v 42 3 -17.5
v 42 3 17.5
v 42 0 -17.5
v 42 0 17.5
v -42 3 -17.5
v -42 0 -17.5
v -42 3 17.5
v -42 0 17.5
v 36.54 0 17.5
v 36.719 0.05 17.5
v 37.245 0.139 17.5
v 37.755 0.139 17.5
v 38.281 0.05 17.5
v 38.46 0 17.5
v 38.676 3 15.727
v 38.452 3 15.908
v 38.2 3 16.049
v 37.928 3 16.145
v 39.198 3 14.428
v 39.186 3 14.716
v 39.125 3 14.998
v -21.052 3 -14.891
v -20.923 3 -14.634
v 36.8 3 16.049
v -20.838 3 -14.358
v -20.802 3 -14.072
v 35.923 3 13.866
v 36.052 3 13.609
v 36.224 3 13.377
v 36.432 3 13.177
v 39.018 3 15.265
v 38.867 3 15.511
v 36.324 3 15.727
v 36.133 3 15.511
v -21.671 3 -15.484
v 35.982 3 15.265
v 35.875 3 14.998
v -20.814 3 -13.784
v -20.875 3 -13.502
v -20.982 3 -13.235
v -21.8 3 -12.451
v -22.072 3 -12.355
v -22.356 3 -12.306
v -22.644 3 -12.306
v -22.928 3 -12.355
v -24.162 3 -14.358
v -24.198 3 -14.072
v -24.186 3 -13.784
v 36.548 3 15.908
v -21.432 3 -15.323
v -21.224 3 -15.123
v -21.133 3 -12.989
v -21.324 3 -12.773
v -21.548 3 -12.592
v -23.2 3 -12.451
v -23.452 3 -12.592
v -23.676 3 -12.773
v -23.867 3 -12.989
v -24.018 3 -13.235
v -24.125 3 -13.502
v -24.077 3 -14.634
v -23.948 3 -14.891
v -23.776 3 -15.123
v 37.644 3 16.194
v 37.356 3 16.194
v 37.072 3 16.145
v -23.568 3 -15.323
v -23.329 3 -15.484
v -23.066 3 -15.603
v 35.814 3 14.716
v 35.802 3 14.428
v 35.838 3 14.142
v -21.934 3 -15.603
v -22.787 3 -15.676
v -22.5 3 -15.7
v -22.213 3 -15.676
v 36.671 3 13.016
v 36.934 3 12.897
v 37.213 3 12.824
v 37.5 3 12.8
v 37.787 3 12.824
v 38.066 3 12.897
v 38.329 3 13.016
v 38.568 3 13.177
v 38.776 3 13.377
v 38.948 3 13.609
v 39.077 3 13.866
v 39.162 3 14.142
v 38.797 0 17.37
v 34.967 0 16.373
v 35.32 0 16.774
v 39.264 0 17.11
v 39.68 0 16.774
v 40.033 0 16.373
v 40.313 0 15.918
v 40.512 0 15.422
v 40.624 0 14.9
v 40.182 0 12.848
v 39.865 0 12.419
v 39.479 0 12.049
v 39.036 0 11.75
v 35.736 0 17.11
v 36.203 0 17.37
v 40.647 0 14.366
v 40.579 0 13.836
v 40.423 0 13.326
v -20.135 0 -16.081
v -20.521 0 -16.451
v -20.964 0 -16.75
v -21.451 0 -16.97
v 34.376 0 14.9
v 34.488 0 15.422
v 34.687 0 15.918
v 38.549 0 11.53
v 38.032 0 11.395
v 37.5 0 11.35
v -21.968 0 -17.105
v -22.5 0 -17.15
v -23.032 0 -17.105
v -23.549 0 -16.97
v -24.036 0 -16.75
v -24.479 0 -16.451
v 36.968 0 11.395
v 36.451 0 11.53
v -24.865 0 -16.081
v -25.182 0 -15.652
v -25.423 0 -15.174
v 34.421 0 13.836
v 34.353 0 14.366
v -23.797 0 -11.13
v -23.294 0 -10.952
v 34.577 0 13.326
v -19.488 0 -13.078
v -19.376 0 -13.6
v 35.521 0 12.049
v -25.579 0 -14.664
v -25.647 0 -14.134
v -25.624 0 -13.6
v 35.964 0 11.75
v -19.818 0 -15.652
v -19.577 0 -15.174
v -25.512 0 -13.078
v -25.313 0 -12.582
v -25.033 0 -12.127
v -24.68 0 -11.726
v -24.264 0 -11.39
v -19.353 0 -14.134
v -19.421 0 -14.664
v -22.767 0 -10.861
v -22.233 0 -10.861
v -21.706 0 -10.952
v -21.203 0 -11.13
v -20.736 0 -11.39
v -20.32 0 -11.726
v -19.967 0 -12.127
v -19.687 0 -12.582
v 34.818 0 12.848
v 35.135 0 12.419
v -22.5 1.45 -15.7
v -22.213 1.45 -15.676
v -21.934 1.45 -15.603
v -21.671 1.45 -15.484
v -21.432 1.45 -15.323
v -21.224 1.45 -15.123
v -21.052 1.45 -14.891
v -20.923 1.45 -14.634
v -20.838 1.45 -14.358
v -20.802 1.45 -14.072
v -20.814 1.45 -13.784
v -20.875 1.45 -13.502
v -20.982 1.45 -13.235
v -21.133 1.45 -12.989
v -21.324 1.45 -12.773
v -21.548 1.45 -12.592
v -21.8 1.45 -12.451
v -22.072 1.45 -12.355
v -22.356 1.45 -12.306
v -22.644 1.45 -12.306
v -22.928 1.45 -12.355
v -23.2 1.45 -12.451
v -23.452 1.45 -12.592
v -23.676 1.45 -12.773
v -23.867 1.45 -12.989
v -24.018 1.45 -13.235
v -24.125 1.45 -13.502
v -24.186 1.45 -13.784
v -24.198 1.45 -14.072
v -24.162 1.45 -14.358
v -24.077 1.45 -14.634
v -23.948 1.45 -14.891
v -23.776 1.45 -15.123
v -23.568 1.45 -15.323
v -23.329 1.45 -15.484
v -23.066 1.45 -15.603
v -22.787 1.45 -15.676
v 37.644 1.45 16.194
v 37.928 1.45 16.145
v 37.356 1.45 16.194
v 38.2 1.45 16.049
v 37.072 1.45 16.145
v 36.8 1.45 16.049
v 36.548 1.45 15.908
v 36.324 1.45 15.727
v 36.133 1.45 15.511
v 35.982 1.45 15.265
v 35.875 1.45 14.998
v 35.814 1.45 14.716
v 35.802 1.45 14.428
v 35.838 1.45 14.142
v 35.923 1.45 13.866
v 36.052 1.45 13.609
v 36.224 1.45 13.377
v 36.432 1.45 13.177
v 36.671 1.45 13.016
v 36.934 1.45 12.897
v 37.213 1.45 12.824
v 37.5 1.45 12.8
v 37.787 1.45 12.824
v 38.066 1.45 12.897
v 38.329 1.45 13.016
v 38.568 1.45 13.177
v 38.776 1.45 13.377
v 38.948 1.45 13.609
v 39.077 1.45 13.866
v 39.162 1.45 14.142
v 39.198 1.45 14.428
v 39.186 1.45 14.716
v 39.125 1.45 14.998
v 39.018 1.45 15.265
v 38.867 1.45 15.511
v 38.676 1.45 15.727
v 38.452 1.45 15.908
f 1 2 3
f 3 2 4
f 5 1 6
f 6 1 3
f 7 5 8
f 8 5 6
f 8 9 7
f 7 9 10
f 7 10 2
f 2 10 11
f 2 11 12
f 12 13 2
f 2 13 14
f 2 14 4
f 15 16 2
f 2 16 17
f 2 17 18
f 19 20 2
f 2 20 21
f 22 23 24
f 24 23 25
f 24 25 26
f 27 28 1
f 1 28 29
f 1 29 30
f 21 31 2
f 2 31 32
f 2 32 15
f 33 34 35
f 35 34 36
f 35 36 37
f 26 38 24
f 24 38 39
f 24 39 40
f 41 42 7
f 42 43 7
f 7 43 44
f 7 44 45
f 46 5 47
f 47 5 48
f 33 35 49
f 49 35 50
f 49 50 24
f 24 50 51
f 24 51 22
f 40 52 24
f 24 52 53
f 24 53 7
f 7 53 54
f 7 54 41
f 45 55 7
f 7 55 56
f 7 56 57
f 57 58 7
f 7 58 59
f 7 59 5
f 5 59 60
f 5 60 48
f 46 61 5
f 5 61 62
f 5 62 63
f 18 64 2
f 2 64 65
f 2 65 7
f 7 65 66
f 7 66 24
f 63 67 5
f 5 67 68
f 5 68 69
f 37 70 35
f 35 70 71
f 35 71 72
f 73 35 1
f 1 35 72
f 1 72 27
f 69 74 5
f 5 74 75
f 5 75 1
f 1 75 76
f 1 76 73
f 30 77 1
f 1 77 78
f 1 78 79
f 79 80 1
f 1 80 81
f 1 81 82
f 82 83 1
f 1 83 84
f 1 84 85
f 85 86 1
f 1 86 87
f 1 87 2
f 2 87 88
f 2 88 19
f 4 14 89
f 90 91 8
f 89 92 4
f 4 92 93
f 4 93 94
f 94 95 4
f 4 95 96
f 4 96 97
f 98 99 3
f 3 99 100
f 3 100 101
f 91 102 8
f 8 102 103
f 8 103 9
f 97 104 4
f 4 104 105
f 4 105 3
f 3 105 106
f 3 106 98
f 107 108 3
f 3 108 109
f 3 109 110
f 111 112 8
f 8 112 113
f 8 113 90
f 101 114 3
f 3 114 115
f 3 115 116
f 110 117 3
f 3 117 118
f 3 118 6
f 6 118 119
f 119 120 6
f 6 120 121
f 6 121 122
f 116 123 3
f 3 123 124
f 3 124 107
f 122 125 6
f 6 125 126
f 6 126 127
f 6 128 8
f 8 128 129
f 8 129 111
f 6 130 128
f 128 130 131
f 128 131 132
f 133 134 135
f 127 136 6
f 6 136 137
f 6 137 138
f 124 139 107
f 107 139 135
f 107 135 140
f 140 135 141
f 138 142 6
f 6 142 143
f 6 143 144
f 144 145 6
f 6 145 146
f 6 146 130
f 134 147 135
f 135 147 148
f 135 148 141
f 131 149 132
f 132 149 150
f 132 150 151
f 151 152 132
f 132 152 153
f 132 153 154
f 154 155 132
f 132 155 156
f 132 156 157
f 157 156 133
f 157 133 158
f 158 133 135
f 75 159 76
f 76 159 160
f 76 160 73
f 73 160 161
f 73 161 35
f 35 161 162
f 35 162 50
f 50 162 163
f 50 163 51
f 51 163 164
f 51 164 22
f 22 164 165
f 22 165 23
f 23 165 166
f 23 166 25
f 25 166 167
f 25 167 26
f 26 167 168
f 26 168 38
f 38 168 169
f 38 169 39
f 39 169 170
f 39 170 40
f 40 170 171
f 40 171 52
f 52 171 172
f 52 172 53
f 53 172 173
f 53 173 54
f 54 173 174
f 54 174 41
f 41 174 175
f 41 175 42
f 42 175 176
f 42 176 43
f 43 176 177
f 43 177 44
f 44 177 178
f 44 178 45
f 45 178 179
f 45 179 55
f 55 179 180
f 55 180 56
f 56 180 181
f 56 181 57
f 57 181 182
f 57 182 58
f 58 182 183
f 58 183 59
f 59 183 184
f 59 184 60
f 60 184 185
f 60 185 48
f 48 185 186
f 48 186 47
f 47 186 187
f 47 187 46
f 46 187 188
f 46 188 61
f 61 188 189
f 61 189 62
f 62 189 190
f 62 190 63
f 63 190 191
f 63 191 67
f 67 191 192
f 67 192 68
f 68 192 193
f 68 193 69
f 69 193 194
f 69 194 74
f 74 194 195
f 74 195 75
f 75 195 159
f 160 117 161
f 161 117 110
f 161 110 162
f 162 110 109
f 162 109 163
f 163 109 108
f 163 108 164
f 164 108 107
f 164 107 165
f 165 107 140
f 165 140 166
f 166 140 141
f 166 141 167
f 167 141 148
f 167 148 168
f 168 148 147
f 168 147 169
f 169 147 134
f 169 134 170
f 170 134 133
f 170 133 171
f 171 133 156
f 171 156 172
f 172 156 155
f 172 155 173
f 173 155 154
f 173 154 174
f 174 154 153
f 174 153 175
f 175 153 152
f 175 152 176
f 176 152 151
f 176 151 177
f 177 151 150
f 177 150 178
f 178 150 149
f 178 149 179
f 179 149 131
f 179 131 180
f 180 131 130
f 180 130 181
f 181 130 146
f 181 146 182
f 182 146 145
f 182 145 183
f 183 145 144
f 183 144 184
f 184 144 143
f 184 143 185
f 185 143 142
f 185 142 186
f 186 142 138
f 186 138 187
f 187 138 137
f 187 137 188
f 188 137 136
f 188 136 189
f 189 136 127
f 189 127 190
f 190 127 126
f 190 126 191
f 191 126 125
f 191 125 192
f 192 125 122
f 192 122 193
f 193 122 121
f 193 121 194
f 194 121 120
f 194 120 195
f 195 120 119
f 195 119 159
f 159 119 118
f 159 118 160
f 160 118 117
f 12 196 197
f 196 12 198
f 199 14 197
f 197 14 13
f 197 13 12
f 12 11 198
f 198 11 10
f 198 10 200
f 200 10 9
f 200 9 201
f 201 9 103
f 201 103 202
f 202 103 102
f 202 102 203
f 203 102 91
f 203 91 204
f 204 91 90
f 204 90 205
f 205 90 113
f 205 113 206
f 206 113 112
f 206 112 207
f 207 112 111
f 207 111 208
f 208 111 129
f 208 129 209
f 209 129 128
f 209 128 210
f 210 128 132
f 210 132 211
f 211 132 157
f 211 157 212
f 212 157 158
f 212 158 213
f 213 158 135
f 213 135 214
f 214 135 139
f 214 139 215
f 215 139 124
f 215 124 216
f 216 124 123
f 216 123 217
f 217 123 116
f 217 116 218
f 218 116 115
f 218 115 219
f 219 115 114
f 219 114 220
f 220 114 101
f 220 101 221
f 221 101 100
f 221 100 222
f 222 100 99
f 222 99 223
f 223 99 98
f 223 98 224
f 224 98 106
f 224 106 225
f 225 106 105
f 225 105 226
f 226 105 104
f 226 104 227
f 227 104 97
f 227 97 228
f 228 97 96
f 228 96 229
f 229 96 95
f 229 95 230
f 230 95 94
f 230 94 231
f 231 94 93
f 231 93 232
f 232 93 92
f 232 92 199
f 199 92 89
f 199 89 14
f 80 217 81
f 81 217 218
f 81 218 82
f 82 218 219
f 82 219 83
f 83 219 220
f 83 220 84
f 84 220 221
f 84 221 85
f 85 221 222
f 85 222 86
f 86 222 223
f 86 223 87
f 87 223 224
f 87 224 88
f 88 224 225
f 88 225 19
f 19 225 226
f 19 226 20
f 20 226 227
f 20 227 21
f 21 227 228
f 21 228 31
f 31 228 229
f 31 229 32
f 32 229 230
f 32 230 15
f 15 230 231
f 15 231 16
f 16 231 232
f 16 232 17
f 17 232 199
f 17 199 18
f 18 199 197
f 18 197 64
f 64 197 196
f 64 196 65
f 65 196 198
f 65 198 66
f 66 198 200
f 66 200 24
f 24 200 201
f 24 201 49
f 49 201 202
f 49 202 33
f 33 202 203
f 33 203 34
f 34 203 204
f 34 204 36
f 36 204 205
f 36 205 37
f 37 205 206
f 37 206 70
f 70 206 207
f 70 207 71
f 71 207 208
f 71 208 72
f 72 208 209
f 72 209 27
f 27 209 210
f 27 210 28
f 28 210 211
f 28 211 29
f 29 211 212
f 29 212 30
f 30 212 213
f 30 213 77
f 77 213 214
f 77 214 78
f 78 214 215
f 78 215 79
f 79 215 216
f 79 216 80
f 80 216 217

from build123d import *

# Parameters (mm, degrees)
SKETCH1_W                                      = 84
SKETCH1_H                                      = 35
BOSS_EXTRUDE1_DEPTH                            = 3
CSK_FOR_M3_FLAT_HEAD_MACHINE_SCREW1_AT_2_COUNT = 2
CSK_FOR_M3_FLAT_HEAD_MACHINE_SCREW1_AT_2_PITCH = 66.424769476


with BuildPart() as part:
    # Sketch1 → Boss-Extrude1 (new body)
    with BuildSketch(Plane(origin=(0, 0, 0), x_dir=(1, 0, 0), z_dir=(0, 1, 0))):
        Rectangle(SKETCH1_W, SKETCH1_H)
    extrude(amount=BOSS_EXTRUDE1_DEPTH)

    # Sketch5 → CSK for M3 Flat Head Machine Screw1 (revolve, cut)
    with BuildSketch(Plane(origin=(37.5, 0, 14.5), x_dir=(0, 0, -1), z_dir=(1, 0, 0))):
        Polygon((0, 0), (0, 3), (1.7, 3), (1.7, 1.45), (3.15, 0), align=None)
    csk_for_m3_flat_head_machine_screw1 = revolve(axis=Axis((37.5, -6.35, 14.5), (0, 1, 0)), mode=Mode.SUBTRACT)

    # CSK for M3 Flat Head Machine Screw1 at 2: CSK for M3 Flat Head Machine Screw1 ×2
    with Locations(*[Vector(-0.9032775043542898, 0, -0.4290568145682877) * (i * CSK_FOR_M3_FLAT_HEAD_MACHINE_SCREW1_AT_2_PITCH) for i in range(1, CSK_FOR_M3_FLAT_HEAD_MACHINE_SCREW1_AT_2_COUNT)]):
        add(csk_for_m3_flat_head_machine_screw1, mode=Mode.SUBTRACT)


solid = part.part
